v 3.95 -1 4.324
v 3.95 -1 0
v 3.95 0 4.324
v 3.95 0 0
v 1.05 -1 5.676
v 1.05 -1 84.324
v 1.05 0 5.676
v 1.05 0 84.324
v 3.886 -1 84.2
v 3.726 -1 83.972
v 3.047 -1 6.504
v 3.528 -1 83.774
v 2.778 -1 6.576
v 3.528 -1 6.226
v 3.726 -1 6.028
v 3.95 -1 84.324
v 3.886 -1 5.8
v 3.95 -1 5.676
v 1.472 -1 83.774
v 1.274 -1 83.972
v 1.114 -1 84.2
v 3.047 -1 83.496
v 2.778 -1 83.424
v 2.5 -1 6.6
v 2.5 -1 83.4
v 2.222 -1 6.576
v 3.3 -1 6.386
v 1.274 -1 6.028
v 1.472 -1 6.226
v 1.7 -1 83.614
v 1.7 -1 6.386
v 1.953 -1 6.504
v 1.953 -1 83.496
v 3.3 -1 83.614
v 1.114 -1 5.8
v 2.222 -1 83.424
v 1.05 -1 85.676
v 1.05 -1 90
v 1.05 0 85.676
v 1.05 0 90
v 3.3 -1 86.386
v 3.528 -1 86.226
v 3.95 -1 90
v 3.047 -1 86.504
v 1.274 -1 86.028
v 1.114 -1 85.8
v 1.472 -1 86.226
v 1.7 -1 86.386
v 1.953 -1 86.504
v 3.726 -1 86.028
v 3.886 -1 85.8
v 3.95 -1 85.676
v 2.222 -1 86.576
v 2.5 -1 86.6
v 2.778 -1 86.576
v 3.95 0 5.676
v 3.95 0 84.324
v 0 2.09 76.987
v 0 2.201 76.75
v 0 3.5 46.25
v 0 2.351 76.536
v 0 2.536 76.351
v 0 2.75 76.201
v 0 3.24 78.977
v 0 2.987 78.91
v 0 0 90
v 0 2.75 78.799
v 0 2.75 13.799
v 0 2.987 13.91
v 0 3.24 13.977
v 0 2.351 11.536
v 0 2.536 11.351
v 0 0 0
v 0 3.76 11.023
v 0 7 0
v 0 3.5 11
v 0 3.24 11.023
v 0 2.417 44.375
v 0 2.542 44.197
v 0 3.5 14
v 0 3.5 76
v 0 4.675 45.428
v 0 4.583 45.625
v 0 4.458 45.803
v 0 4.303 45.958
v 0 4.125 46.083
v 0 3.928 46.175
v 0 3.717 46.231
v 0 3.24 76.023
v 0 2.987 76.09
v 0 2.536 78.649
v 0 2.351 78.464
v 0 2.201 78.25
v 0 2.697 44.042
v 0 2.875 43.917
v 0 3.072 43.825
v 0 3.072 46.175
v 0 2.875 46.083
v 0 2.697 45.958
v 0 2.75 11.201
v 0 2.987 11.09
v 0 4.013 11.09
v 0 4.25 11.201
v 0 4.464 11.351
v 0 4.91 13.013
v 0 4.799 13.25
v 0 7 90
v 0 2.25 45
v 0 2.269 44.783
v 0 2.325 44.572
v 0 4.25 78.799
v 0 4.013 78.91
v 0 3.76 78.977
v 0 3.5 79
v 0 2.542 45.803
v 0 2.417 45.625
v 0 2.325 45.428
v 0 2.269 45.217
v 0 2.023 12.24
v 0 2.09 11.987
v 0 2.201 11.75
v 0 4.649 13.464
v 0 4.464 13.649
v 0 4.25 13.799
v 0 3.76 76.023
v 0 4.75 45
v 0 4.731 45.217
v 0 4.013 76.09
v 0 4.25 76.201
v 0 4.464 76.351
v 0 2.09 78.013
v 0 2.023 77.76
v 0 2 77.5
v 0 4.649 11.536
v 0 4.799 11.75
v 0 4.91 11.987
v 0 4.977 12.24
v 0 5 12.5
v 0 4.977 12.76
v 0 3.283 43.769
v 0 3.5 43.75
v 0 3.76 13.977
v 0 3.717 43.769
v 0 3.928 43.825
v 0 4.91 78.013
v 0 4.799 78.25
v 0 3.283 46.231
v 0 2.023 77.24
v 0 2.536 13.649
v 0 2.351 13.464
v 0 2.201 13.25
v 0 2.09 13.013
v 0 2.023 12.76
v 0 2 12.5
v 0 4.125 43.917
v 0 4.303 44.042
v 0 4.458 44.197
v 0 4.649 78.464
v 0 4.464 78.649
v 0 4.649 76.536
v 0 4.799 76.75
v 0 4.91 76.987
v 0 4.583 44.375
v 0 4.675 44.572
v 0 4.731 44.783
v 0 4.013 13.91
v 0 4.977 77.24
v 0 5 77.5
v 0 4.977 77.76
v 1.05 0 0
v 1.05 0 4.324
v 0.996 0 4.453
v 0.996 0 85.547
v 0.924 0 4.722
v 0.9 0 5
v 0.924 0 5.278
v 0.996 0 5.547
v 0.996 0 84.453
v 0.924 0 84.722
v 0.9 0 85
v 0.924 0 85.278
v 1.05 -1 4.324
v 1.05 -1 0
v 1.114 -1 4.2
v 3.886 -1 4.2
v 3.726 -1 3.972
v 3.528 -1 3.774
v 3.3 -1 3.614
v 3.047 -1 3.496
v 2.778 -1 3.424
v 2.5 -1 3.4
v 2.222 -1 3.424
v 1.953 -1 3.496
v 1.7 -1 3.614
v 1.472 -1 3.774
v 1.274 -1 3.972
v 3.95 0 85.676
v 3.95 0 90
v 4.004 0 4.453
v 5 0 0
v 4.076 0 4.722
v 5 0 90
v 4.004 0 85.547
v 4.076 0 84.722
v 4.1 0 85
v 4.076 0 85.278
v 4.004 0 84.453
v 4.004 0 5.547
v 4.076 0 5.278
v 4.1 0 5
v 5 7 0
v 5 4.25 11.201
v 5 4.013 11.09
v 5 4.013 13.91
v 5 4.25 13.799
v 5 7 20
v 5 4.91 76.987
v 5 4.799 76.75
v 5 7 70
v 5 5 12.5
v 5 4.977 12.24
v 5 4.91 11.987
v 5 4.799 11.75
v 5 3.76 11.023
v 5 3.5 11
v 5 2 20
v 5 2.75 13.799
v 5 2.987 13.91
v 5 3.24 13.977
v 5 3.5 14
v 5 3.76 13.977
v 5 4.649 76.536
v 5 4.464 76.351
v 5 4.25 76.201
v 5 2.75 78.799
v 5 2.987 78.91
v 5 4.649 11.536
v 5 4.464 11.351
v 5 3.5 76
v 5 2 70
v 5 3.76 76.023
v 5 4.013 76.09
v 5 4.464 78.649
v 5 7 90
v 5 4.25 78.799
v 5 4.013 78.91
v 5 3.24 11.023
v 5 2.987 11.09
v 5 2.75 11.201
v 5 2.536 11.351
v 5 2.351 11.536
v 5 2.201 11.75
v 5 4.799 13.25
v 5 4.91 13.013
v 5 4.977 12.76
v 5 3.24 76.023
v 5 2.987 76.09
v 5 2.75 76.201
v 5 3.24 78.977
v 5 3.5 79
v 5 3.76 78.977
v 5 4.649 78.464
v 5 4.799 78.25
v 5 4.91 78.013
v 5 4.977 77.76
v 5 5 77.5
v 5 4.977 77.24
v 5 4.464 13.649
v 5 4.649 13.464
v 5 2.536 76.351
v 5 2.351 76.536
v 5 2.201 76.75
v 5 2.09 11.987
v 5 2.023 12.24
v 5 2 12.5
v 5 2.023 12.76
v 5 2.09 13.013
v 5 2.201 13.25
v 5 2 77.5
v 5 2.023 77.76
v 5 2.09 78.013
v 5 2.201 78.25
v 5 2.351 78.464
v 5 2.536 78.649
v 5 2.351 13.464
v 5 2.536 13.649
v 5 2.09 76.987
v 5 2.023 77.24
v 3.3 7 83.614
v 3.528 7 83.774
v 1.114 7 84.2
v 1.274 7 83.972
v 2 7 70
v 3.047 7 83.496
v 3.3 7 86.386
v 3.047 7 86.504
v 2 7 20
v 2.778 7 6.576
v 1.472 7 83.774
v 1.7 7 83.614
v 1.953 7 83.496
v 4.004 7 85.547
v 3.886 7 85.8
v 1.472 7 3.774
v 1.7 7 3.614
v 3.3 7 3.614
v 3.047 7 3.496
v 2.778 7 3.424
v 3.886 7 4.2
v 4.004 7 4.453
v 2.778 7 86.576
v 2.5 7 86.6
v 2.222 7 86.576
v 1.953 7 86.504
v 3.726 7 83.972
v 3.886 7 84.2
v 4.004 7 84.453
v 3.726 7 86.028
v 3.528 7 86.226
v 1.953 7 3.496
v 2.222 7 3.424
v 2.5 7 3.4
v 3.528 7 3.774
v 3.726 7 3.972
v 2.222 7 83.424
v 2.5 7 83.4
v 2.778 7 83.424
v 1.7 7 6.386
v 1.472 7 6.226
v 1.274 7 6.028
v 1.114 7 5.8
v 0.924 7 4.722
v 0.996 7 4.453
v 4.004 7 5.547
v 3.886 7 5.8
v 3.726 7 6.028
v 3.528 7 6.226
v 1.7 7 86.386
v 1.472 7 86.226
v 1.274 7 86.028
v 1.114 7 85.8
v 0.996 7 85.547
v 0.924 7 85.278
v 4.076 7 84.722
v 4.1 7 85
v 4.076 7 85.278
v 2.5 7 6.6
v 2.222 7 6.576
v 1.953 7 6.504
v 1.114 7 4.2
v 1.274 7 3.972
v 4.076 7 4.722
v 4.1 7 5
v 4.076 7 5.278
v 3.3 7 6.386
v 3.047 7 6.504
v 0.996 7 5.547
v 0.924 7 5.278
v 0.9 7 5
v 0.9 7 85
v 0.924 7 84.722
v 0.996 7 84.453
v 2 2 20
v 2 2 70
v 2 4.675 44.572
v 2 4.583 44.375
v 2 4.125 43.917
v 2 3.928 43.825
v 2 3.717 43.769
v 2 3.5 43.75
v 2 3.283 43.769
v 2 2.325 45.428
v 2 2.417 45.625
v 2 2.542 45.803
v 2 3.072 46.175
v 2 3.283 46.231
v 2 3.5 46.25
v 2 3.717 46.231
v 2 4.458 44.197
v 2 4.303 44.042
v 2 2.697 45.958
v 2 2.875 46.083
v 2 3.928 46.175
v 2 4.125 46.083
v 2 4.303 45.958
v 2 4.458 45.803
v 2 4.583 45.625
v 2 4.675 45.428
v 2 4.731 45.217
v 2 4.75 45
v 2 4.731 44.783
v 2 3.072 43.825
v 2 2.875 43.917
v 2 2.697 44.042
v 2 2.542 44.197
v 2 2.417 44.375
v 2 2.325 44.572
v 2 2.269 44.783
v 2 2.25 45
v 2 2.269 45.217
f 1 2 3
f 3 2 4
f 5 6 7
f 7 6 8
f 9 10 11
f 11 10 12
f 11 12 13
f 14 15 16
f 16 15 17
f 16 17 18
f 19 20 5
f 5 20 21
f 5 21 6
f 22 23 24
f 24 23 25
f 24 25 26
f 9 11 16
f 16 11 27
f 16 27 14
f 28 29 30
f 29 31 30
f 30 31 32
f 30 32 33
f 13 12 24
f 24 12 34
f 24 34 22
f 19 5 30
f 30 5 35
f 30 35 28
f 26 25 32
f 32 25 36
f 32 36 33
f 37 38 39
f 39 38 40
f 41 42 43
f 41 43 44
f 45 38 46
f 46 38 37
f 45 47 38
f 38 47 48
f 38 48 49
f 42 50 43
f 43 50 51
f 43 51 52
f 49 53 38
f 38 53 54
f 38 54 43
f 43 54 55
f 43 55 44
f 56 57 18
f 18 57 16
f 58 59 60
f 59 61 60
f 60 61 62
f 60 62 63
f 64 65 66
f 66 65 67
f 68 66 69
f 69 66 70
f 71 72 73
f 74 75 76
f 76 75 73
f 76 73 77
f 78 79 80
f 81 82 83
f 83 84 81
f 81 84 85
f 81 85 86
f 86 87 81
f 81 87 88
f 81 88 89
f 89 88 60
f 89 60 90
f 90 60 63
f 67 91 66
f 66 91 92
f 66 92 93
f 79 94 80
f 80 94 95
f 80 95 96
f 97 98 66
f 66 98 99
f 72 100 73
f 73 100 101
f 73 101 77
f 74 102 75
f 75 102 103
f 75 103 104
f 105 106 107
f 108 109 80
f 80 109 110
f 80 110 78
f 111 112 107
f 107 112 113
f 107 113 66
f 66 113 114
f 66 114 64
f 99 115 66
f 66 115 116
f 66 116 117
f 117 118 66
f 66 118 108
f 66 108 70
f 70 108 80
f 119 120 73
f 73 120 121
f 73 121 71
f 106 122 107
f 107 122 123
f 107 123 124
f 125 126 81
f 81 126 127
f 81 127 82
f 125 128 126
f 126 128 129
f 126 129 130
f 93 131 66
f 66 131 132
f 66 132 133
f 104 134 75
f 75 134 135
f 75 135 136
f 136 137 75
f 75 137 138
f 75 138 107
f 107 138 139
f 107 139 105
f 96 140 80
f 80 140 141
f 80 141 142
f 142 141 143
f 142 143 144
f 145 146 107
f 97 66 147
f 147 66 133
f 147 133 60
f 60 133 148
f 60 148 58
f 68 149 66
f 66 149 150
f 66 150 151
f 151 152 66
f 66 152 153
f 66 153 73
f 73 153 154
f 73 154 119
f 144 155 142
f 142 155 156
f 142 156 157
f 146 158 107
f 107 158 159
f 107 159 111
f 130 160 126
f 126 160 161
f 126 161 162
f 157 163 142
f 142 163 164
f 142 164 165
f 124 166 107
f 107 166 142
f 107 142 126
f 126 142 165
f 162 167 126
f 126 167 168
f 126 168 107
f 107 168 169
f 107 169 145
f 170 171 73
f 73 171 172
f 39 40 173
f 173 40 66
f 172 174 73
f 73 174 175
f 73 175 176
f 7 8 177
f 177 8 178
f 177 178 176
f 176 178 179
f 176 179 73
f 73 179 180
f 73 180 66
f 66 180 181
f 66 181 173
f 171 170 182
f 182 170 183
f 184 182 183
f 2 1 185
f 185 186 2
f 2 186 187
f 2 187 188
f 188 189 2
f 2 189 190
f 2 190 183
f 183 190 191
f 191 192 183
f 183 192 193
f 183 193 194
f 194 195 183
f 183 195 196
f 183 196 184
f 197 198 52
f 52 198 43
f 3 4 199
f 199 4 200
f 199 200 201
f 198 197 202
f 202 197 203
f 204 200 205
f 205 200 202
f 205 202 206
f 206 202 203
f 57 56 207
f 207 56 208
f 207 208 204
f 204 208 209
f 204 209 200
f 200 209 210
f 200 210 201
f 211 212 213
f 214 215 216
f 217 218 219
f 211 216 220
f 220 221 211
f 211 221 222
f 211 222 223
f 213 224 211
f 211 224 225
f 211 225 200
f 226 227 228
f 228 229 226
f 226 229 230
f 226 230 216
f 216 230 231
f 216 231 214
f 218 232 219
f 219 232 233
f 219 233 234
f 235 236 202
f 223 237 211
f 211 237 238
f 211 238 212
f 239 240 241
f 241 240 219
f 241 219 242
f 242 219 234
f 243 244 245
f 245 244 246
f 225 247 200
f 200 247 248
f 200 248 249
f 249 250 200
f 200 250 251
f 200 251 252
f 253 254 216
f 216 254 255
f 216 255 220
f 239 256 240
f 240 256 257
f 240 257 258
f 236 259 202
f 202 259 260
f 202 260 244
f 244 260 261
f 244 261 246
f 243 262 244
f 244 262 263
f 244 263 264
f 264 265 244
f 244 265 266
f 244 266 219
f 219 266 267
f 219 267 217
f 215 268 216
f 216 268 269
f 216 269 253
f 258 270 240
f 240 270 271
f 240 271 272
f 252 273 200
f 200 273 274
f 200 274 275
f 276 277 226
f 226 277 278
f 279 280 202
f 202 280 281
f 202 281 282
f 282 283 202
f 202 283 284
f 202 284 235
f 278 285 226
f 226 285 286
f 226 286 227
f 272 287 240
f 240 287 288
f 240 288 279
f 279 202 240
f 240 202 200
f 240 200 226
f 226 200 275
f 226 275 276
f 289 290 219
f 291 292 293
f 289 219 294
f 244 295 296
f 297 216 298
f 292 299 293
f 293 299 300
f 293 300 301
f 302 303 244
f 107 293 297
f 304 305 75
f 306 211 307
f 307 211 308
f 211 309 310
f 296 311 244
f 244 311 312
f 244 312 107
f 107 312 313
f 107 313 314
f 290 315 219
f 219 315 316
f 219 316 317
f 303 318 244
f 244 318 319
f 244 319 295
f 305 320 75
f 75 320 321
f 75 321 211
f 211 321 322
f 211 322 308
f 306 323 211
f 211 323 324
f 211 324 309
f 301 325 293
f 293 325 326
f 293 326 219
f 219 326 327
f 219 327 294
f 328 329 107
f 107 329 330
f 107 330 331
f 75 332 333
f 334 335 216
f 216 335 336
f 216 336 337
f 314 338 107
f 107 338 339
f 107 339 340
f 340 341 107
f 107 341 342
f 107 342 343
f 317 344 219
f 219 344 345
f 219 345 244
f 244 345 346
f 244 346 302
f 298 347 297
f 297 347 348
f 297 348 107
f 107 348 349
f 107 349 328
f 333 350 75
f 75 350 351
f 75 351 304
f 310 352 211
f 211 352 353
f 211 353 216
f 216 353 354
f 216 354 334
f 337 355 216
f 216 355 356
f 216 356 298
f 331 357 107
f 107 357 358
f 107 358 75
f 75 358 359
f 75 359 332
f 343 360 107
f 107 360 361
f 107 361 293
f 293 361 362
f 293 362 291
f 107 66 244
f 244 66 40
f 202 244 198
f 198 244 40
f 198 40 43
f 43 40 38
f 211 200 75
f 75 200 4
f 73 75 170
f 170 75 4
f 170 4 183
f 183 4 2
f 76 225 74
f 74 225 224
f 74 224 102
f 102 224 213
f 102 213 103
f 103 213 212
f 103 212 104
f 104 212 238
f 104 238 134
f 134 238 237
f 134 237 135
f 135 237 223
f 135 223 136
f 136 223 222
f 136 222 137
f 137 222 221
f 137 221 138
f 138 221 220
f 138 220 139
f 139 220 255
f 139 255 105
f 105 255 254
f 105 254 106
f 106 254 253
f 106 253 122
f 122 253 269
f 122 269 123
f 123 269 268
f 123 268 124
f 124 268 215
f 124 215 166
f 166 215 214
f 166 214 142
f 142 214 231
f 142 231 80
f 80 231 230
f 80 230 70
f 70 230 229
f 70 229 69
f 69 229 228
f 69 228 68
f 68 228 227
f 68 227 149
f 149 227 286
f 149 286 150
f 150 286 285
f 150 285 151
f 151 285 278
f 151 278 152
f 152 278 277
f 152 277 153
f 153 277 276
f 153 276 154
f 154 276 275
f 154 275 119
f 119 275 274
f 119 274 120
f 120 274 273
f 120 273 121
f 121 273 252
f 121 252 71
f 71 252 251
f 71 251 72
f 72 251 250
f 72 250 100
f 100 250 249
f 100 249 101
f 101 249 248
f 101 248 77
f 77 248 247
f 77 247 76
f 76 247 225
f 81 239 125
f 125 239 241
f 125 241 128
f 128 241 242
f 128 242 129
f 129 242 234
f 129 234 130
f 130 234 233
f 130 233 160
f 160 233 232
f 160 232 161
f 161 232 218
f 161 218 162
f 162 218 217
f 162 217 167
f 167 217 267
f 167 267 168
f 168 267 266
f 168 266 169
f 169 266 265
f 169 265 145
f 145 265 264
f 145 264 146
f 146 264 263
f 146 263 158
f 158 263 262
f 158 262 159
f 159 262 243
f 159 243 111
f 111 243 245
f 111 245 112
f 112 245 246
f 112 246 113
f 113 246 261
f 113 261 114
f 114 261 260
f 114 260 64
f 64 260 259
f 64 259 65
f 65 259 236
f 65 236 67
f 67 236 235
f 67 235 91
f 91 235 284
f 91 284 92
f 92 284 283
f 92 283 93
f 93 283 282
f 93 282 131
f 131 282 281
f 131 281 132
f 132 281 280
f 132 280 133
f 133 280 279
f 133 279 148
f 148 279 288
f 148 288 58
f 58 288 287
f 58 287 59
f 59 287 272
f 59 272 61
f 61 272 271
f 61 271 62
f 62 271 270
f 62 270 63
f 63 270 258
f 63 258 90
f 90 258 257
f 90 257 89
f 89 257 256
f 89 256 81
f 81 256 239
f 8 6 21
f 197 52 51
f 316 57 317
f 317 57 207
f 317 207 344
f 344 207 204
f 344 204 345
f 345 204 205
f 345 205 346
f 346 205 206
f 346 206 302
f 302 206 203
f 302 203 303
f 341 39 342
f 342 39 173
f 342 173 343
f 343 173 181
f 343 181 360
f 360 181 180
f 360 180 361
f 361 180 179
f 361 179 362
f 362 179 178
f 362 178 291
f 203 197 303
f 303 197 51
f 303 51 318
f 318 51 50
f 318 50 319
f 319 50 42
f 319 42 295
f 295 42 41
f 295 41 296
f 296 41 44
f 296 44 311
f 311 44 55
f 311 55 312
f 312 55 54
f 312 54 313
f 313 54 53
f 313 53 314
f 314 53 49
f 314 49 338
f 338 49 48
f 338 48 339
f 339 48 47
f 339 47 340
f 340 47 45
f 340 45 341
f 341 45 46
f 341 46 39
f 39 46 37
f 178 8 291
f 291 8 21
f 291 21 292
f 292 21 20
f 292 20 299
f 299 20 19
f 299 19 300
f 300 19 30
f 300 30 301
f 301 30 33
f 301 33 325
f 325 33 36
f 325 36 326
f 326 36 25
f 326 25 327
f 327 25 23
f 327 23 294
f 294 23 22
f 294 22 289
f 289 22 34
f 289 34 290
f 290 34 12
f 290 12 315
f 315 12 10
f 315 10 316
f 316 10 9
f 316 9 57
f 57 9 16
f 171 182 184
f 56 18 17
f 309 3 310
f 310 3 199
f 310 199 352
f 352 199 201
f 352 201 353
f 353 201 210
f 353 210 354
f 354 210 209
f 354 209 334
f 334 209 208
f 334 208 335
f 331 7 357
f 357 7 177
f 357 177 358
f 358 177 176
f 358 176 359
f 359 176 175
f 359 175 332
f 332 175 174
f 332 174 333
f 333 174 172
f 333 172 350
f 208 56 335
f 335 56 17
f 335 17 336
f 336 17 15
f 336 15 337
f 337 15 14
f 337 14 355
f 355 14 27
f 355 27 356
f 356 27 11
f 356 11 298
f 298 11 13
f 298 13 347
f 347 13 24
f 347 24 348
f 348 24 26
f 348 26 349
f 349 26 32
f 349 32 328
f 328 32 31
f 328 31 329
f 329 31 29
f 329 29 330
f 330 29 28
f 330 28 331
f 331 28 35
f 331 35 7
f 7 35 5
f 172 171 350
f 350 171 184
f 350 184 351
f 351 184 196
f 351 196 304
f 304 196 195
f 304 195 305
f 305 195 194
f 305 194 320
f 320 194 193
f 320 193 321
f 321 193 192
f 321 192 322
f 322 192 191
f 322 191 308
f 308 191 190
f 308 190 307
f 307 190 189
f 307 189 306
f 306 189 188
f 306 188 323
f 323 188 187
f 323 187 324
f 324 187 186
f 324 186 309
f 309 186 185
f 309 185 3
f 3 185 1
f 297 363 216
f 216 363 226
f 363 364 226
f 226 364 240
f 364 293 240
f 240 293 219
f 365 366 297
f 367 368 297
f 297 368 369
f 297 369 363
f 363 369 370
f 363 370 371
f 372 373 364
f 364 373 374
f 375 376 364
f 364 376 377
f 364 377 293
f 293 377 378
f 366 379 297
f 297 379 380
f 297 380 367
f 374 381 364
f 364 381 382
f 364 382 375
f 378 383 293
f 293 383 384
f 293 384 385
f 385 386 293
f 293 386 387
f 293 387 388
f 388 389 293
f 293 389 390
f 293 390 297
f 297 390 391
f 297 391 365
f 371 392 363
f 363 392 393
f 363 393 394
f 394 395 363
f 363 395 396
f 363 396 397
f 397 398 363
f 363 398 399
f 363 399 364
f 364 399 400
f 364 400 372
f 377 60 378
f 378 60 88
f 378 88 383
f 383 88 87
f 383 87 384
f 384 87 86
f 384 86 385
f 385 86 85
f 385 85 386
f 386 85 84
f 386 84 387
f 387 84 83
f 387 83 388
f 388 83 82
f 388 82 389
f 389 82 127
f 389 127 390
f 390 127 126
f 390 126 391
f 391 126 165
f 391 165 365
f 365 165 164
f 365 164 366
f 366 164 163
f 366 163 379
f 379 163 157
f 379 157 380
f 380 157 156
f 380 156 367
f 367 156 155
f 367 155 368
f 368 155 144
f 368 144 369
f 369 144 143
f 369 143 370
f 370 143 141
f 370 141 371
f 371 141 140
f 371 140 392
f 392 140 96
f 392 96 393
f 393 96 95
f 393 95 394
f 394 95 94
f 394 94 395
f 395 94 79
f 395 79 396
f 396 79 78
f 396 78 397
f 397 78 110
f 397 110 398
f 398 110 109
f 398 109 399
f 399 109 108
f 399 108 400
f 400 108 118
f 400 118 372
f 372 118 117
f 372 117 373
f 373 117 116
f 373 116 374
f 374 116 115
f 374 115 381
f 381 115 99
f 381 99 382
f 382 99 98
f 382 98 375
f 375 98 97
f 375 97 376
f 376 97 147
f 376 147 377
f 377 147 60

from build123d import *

# Parameters (mm, degrees)
MAIN_DEPTH               = 90
ESQUISSE2_R              = 1.5
HOLESFORPOWERBOARD_DEPTH = 6
ESQUISSE4_R              = 1.6
HOLESFORMAKERBEAM_DEPTH  = 9
SKETCH1_W                = 50
SKETCH1_H                = 5
POWERBOARDPINHOLES_DEPTH = 3
SKETCH2_R                = 1.25
WINDOWFIXHOLES_DEPTH     = 6


with BuildPart() as part:
    # Esquisse1 → Main (new body)
    with BuildSketch(Plane.XY):
        Polygon((0, 7), (5, 7), (5, 0), (3.95, 0), (3.95, -1), (1.05, -1), (1.05, 0), (0, 0), align=None)
    extrude(amount=MAIN_DEPTH)

    # Esquisse2 → HolesForPowerBoard (cut, through all)
    with BuildSketch(Plane(origin=(5, 0, 0), x_dir=(0, 0, -1), z_dir=(1, 0, 0))):
        with Locations((-12.5, 3.5)):
            Circle(ESQUISSE2_R)
        with Locations((-77.5, 3.5)):
            Circle(ESQUISSE2_R)
    extrude(amount=-HOLESFORPOWERBOARD_DEPTH, mode=Mode.SUBTRACT)

    # Esquisse4 → HolesForMakerBeam (cut, through all)
    with BuildSketch(Plane(origin=(0, -1, 0), x_dir=(-1, 0, 0), z_dir=(0, -1, 0))):
        with Locations((-2.5, -85)):
            Circle(ESQUISSE4_R)
        with Locations((-2.5, -5)):
            Circle(ESQUISSE4_R)
    extrude(amount=-HOLESFORMAKERBEAM_DEPTH, mode=Mode.SUBTRACT)

    # Sketch1 → PowerBoardPinHoles (cut)
    with BuildSketch(Plane(origin=(5, 0, 0), x_dir=(0, 0, -1), z_dir=(1, 0, 0))):
        with Locations((-45, 4.5)):
            Rectangle(SKETCH1_W, SKETCH1_H)
    extrude(amount=-POWERBOARDPINHOLES_DEPTH, mode=Mode.SUBTRACT)

    # Sketch2 → WindowFixHoles (cut, through all)
    with BuildSketch(Plane.ZY):
        with Locations((45, 3.5)):
            Circle(SKETCH2_R)
    extrude(amount=-WINDOWFIXHOLES_DEPTH, mode=Mode.SUBTRACT)


solid = part.part
